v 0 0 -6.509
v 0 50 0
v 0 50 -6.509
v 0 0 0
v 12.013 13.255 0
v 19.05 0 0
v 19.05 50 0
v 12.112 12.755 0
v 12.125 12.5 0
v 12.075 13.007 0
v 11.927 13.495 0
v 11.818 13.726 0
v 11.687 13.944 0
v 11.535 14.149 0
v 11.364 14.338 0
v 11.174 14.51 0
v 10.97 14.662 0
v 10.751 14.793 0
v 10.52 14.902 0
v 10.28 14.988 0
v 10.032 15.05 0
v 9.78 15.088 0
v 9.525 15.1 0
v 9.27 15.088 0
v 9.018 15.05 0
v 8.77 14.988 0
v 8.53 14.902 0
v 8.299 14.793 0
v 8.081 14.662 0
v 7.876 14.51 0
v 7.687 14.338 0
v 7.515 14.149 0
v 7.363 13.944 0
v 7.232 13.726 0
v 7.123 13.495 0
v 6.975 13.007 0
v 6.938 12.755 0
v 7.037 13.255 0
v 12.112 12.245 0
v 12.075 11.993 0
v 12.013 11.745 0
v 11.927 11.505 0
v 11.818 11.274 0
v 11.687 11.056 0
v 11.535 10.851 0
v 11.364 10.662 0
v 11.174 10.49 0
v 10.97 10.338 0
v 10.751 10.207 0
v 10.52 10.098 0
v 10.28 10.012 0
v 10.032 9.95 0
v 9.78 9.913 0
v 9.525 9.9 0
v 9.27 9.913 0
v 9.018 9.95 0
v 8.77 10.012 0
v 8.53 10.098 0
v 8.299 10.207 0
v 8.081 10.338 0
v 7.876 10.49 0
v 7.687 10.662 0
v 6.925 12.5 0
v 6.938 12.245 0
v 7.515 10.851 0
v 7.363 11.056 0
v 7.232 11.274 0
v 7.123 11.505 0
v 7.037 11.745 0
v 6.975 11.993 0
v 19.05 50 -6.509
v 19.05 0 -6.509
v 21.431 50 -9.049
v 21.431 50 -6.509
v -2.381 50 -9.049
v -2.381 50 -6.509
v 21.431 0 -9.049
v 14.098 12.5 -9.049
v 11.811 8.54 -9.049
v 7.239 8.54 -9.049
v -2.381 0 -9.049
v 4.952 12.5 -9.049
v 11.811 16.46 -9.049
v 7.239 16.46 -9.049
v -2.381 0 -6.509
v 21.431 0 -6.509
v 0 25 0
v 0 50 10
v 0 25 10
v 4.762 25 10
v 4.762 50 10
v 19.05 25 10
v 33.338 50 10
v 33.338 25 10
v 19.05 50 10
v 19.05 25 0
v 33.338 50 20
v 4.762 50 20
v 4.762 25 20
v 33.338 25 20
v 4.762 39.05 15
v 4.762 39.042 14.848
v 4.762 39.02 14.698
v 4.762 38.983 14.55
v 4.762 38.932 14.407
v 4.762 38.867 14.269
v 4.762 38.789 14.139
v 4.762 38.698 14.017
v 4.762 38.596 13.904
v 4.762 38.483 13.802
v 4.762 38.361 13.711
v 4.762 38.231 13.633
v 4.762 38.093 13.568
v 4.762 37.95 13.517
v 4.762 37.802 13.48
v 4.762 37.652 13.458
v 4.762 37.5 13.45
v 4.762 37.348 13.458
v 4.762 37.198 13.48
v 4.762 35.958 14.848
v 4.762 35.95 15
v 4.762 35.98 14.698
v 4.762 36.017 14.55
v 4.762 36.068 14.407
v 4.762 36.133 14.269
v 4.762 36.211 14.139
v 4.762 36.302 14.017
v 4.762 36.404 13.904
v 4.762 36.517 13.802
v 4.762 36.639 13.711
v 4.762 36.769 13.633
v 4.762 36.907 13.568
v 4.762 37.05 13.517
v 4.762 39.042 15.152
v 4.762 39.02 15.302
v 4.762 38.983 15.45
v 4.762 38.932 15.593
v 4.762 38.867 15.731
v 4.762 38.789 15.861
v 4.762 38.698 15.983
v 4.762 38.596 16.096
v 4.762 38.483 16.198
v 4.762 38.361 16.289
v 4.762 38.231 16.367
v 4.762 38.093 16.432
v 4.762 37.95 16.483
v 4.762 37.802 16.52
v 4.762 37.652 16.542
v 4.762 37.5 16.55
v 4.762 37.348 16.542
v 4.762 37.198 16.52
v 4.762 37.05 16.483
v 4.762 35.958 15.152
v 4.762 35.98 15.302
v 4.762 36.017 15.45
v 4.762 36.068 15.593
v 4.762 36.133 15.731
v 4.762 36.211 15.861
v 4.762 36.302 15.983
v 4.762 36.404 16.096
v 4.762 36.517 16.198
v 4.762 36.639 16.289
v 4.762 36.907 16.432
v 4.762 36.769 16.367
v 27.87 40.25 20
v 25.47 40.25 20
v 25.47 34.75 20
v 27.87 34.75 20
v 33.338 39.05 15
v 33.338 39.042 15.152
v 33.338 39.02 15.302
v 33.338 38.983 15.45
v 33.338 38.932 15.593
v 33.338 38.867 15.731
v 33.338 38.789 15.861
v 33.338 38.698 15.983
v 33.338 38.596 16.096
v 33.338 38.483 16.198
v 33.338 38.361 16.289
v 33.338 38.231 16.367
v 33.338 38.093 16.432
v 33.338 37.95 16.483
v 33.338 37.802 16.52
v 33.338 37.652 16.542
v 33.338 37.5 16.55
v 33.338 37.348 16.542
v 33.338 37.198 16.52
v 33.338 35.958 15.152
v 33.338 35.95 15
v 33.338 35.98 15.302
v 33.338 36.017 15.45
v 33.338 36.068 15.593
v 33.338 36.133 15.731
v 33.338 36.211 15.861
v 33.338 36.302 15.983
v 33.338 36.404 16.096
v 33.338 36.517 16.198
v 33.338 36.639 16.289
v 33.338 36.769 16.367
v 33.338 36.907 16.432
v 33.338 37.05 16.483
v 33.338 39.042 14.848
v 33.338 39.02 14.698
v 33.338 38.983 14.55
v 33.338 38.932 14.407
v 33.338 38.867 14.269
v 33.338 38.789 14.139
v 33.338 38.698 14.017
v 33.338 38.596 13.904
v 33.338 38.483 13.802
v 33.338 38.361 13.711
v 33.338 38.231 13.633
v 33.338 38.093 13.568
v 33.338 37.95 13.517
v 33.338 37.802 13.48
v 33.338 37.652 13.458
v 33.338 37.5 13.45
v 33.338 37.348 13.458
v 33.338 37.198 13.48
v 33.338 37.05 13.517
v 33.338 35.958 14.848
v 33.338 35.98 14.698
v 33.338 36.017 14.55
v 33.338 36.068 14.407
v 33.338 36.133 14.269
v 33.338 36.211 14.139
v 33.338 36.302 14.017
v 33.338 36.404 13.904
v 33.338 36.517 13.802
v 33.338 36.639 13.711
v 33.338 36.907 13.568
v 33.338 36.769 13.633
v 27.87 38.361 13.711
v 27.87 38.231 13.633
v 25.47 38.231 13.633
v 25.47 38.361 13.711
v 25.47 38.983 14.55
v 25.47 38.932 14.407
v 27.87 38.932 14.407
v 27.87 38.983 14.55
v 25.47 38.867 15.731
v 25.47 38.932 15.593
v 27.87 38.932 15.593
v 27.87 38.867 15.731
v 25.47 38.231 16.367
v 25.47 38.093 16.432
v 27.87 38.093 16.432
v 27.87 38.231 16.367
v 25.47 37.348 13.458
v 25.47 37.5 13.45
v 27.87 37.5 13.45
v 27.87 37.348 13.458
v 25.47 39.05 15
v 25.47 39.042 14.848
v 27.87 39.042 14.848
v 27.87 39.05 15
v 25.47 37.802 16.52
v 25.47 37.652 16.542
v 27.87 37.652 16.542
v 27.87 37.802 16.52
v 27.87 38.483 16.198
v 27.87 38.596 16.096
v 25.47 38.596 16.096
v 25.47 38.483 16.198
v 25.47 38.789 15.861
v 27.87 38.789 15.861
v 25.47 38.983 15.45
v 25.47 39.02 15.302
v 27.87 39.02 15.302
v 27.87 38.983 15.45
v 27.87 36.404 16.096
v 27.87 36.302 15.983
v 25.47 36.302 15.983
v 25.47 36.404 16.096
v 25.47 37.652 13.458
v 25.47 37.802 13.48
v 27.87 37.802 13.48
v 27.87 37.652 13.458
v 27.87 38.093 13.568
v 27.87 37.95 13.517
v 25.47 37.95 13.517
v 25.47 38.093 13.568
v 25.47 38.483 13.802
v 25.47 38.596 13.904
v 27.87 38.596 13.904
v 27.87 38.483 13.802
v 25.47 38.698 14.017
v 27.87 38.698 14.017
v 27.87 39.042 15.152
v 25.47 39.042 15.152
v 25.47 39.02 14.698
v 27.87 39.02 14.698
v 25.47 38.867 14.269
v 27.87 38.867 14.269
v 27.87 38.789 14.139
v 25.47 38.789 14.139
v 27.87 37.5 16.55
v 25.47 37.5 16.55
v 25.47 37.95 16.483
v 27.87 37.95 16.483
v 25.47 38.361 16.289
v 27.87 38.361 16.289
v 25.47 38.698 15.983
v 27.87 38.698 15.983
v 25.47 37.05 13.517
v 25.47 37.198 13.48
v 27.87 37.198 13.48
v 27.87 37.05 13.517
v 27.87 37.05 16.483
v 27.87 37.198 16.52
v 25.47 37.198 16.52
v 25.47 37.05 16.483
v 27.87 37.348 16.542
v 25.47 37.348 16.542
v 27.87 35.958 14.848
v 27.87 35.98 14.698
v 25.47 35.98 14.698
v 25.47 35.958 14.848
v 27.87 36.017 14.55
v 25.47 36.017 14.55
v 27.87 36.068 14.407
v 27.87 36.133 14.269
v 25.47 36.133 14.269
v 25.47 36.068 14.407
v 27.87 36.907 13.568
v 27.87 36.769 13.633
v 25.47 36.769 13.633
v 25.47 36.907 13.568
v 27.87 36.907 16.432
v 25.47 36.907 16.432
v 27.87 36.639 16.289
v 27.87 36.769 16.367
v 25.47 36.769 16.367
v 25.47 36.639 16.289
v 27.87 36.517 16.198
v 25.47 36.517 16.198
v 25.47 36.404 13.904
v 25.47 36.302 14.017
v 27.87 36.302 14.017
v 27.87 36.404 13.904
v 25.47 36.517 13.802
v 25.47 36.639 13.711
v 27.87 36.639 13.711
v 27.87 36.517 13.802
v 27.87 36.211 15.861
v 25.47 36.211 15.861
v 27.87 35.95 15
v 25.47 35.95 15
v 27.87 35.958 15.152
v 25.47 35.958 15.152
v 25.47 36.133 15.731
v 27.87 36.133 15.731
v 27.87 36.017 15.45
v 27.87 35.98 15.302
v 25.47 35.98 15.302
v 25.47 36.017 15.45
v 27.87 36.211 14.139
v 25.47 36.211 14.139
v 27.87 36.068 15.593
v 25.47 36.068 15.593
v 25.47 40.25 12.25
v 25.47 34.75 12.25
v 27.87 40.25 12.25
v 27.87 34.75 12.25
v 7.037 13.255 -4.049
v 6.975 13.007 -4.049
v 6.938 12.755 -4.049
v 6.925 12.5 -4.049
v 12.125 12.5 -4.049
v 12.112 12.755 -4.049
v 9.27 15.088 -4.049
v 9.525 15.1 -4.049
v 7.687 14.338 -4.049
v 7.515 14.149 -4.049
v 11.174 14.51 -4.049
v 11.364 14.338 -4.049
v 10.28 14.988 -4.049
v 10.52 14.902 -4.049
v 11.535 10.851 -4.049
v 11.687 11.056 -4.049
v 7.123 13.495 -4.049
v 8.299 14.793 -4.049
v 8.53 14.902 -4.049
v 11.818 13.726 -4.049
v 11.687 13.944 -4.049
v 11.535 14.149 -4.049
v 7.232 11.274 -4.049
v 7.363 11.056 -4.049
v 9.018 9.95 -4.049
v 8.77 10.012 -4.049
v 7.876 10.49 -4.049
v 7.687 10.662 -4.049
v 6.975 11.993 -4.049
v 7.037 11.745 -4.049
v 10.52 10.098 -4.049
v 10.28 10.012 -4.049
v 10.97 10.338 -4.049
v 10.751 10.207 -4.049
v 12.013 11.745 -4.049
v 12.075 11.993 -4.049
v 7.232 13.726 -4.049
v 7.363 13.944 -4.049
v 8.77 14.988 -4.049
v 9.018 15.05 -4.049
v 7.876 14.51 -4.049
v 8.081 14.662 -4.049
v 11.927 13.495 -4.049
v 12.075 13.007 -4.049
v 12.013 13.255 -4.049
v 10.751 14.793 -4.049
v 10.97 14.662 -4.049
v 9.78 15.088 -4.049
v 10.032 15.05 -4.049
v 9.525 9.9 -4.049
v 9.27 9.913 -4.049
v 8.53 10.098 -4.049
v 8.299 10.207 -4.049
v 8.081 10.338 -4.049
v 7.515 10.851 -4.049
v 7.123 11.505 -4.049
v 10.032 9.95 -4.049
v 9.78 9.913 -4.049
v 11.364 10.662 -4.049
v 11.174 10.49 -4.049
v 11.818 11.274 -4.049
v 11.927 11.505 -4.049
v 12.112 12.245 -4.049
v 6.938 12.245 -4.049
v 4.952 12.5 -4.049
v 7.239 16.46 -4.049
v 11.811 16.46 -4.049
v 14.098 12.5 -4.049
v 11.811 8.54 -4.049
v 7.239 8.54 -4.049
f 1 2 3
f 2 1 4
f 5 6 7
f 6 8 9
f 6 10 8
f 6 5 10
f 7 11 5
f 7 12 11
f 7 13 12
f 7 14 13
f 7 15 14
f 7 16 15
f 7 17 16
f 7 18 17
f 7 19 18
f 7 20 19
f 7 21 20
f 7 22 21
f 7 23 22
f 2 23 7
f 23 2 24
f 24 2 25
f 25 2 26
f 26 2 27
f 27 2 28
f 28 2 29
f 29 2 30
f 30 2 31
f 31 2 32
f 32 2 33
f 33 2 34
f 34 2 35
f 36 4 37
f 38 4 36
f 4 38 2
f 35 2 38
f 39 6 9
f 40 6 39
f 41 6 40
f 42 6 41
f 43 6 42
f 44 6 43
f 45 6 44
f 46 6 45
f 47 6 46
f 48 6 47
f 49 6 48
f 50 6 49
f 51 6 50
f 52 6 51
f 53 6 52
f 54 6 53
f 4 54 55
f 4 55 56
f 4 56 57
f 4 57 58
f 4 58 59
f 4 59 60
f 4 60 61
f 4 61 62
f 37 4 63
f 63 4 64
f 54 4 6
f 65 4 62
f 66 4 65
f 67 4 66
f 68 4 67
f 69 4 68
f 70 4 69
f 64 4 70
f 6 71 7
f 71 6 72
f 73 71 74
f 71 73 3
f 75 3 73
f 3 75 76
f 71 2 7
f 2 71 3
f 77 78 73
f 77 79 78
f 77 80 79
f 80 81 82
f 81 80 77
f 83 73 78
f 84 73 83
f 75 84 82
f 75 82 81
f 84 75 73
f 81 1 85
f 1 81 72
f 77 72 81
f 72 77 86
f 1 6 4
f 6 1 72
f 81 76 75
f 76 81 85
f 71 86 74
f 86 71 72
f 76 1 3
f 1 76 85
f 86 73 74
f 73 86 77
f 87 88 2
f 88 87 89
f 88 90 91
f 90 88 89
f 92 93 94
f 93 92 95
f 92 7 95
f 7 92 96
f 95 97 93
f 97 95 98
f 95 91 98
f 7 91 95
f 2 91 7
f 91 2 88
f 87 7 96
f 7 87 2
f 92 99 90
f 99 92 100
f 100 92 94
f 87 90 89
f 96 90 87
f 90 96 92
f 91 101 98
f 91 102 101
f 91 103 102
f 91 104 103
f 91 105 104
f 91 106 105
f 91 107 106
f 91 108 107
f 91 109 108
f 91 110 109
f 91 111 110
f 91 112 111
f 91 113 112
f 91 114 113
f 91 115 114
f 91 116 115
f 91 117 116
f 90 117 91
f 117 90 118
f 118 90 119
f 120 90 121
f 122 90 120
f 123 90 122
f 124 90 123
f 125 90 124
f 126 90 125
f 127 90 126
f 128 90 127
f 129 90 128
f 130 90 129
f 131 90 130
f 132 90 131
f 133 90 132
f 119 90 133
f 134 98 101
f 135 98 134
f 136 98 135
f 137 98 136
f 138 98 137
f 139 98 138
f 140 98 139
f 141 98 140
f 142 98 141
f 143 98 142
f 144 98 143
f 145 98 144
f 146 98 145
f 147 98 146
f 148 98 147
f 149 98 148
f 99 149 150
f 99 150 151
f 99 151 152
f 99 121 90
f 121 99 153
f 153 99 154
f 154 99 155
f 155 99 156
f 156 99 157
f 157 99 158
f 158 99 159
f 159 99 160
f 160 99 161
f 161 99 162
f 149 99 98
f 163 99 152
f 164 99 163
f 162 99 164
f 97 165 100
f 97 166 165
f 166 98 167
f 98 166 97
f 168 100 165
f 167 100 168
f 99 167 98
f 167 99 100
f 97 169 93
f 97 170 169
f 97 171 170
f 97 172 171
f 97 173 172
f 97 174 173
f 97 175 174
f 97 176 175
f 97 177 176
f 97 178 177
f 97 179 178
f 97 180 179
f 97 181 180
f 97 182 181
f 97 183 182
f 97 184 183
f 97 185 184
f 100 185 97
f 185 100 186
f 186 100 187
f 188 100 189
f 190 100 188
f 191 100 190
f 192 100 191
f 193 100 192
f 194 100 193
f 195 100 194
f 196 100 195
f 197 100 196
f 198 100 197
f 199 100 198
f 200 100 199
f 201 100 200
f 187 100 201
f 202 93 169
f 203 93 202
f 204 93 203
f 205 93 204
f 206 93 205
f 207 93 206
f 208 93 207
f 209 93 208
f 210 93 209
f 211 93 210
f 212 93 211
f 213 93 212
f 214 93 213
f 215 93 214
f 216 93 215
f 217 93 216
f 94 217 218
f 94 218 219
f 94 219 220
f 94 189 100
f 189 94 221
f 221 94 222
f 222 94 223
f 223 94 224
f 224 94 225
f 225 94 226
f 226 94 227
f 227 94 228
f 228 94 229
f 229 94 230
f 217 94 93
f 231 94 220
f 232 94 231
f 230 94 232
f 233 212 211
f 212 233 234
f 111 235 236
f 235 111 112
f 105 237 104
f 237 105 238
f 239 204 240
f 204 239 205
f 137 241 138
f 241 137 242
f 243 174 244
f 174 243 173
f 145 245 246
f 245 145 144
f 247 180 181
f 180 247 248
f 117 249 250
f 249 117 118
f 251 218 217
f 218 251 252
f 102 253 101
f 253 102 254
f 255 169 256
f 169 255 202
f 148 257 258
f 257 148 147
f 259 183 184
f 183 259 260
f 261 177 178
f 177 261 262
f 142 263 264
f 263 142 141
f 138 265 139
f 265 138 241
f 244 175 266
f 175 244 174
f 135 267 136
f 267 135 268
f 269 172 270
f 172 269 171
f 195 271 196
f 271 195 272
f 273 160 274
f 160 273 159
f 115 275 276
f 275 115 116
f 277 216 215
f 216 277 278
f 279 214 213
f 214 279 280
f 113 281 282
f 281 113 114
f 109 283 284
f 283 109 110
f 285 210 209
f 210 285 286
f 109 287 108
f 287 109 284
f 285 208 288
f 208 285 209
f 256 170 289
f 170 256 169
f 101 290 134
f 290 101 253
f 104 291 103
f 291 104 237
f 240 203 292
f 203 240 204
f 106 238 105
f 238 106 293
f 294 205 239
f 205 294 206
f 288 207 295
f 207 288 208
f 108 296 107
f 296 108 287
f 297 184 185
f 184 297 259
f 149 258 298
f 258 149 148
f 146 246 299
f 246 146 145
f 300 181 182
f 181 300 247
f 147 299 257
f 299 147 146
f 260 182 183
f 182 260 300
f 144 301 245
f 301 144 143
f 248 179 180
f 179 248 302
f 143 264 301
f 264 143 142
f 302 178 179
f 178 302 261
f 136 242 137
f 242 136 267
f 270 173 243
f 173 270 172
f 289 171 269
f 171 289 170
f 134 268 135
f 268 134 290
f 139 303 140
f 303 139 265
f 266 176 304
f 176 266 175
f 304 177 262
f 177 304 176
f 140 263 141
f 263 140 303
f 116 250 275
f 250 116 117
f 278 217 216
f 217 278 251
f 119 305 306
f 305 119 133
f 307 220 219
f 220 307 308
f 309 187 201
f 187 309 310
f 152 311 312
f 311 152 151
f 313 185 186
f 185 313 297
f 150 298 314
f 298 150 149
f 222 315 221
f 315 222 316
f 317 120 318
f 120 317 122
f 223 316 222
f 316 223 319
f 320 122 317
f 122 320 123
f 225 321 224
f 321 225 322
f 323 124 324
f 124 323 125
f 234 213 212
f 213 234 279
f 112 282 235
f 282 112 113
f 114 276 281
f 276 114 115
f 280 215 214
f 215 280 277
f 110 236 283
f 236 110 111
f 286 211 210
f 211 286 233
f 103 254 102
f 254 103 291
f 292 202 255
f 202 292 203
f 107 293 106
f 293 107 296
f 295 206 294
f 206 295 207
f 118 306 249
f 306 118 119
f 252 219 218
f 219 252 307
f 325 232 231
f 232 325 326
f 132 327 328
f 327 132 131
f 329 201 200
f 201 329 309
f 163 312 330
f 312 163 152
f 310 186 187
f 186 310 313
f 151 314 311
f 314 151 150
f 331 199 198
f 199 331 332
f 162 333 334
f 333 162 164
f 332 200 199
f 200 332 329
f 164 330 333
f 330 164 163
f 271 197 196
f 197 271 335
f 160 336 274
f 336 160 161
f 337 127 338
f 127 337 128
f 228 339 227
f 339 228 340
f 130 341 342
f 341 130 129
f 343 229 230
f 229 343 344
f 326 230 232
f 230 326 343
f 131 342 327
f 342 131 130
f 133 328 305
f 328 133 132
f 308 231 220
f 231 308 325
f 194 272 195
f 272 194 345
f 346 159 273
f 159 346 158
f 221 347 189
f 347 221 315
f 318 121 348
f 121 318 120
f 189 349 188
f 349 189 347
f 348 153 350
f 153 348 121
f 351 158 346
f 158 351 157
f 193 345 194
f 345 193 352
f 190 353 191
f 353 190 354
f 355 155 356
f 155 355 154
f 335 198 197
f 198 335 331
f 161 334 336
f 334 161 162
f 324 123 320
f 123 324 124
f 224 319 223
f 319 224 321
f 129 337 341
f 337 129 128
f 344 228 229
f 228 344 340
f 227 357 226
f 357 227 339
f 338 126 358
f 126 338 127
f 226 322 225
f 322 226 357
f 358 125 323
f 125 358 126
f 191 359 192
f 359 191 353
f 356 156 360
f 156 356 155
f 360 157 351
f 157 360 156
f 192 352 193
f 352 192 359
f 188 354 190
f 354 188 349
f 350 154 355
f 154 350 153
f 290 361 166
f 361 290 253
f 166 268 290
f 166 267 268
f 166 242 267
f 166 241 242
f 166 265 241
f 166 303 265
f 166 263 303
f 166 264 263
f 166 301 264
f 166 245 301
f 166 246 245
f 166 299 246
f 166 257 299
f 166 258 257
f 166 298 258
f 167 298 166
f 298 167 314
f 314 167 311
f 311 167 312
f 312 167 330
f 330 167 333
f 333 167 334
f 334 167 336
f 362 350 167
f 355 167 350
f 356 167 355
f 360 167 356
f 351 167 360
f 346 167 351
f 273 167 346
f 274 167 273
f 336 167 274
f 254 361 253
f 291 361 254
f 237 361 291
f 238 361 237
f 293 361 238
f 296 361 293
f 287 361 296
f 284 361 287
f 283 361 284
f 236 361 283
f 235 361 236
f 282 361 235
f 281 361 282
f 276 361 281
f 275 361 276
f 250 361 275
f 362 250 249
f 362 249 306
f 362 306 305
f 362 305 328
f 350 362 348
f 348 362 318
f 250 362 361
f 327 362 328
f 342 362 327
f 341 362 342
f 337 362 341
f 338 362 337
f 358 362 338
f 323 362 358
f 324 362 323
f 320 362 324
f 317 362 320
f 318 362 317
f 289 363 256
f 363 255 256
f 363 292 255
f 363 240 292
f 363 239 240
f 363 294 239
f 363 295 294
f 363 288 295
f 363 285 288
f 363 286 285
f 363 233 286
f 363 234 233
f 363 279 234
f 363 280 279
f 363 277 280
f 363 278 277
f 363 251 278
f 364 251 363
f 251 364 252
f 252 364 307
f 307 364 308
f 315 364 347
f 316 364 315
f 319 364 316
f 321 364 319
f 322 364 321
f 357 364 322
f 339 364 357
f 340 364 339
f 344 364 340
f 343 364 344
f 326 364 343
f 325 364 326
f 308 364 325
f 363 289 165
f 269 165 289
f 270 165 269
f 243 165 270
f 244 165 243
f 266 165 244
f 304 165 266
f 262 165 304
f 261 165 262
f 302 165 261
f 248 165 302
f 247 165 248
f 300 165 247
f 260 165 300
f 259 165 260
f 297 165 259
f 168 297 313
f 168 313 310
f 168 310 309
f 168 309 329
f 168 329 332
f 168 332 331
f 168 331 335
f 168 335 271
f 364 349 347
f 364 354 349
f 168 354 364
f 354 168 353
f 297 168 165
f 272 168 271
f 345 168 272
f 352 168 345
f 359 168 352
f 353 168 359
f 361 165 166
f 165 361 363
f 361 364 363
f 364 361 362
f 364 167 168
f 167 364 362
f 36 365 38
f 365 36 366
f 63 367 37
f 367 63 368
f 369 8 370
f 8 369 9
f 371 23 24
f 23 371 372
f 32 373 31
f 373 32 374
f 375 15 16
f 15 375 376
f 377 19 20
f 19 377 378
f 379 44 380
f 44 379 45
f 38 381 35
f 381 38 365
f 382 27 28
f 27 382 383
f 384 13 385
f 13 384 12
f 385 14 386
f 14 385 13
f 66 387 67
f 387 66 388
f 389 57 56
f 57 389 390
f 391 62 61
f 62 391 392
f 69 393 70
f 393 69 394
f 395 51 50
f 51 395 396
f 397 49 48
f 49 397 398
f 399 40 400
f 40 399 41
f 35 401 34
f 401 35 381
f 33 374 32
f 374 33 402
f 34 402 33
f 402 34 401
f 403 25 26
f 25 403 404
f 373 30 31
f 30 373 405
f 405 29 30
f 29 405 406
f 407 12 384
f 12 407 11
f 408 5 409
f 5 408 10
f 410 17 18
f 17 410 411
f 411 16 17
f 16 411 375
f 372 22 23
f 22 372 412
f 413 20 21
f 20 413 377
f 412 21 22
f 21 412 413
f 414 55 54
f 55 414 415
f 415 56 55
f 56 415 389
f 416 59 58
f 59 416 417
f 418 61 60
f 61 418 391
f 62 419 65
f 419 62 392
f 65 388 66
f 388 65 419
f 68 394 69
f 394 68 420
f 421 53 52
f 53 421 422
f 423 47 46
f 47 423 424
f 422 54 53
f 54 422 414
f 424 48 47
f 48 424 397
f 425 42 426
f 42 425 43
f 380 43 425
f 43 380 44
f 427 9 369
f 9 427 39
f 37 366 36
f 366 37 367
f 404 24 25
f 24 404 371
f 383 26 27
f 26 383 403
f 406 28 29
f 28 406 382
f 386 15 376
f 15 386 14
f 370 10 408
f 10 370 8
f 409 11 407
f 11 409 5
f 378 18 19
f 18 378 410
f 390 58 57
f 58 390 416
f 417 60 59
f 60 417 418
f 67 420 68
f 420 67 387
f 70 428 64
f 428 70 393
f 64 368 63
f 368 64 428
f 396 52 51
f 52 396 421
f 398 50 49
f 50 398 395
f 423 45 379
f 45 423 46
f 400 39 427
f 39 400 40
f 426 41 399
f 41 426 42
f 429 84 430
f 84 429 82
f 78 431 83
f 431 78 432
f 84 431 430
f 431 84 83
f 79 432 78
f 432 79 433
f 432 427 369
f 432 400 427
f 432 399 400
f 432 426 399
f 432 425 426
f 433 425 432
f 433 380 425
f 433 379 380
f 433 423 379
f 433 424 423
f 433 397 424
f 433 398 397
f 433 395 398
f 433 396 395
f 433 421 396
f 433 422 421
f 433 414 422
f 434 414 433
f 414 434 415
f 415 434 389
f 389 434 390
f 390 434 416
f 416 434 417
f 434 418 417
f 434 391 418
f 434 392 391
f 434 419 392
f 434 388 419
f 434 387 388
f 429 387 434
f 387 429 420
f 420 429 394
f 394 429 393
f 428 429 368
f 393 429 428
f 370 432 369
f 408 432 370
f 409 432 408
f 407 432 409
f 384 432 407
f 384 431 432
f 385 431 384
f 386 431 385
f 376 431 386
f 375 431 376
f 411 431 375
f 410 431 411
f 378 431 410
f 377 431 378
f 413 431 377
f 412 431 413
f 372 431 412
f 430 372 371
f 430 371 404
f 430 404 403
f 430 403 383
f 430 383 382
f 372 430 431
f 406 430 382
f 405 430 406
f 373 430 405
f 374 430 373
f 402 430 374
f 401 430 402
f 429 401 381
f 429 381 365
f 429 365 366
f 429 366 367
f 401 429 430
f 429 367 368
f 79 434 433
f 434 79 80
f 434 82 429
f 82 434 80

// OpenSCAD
// file: ../../Various/SCAD/screw_holes.scad
/**
 * Generates a hole for screws, including screw shaft and head or shaft and nut.
 * This module can be parameterized to produce the necessary bodies.
 */
module screw_trap(hole = 3, top = 6, bottomHeight = 5, topHeight = 5, forNut = false) {
    translate([0, 0, -0.01]) cylinder(d = hole + 0.2, h = bottomHeight + 0.02);
    if (forNut) {
        upscaleRatio = 1/cos(180/6);
        translate([0, 0, bottomHeight]) cylinder(r = (top*0.99)/2 * upscaleRatio, h = topHeight, $fn=6);
    }
    else {
        translate([0, 0, bottomHeight]) cylinder(d = top + 0.2, h = topHeight);
    }
}

module nut_trap(hole_diameter = 3, size_head = 6, height_shaft = 5, height_trap = 5) {
    screw_trap(hole_diameter, size_head, height_shaft, height_trap, true);
}
// main file
use <../../Various/SCAD/screw_holes.scad>

$fn = 64;
inch = 25.4;

/**
 * Factor to adjust the miter bar height for a better fit. In an ideal
 * world, this value would always be one, but due to tolerances in 
 * printing and the t-slots, some adjustment may be neccessary for a 
 * good fit.
 */
miter_bar_height_adjustment = 0.95;

// INTERNAL VALUES FROM HERE, DO NOT EDIT
miter_bar_width_1 = inch * 3/4;
miter_bar_width_2 = inch * 15/16;
miter_bar_height_1 = inch * 3/8 * miter_bar_height_adjustment;
miter_bar_height_2 = inch * 1/10;

adjustment_bar_length = 50;
adjustment_bar_height = 10;
adjustment_bar_width = miter_bar_width_1 * 1.5;

module miter_bar(length = 50) {

    union() {
        translate([(miter_bar_width_2 - miter_bar_width_1) / 2, 0, 0])
            cube([miter_bar_width_1, length, miter_bar_height_1]);
        cube([miter_bar_width_2, length, miter_bar_height_2]);
    }
}

module adjustment_bar() {   
    difference() {
        union() {
        translate([-(miter_bar_width_2 - miter_bar_width_1) / 2, 0, -(miter_bar_height_1)])
            miter_bar(length = adjustment_bar_length);
        translate([0, adjustment_bar_length/2, 0])
            cube([miter_bar_width_1, adjustment_bar_length/2, adjustment_bar_height]);
        translate([miter_bar_width_1/4, adjustment_bar_length/2, adjustment_bar_height]) 
            cube([adjustment_bar_width, adjustment_bar_length/2, adjustment_bar_height]);
        }
        translate([0, adjustment_bar_length * 0.75, adjustment_bar_height * 1.5]) {
            rotate([0, 90, 0])
                cylinder(d = 3.1, h = 2 * miter_bar_width_1);
            translate([miter_bar_width_1 * 1.4, 0, 2.5]) 
                cube([2.4, 5.5, 10.5], center = true);
        }
        translate([miter_bar_width_1/2, adjustment_bar_length * 0.25, 15 - miter_bar_height_1])
            rotate([0, 180, 0])
                nut_trap(hole_diameter = 5, size_head = 8, height_shaft = 10, height_trap = 5);        
    }
}

adjustment_bar();
